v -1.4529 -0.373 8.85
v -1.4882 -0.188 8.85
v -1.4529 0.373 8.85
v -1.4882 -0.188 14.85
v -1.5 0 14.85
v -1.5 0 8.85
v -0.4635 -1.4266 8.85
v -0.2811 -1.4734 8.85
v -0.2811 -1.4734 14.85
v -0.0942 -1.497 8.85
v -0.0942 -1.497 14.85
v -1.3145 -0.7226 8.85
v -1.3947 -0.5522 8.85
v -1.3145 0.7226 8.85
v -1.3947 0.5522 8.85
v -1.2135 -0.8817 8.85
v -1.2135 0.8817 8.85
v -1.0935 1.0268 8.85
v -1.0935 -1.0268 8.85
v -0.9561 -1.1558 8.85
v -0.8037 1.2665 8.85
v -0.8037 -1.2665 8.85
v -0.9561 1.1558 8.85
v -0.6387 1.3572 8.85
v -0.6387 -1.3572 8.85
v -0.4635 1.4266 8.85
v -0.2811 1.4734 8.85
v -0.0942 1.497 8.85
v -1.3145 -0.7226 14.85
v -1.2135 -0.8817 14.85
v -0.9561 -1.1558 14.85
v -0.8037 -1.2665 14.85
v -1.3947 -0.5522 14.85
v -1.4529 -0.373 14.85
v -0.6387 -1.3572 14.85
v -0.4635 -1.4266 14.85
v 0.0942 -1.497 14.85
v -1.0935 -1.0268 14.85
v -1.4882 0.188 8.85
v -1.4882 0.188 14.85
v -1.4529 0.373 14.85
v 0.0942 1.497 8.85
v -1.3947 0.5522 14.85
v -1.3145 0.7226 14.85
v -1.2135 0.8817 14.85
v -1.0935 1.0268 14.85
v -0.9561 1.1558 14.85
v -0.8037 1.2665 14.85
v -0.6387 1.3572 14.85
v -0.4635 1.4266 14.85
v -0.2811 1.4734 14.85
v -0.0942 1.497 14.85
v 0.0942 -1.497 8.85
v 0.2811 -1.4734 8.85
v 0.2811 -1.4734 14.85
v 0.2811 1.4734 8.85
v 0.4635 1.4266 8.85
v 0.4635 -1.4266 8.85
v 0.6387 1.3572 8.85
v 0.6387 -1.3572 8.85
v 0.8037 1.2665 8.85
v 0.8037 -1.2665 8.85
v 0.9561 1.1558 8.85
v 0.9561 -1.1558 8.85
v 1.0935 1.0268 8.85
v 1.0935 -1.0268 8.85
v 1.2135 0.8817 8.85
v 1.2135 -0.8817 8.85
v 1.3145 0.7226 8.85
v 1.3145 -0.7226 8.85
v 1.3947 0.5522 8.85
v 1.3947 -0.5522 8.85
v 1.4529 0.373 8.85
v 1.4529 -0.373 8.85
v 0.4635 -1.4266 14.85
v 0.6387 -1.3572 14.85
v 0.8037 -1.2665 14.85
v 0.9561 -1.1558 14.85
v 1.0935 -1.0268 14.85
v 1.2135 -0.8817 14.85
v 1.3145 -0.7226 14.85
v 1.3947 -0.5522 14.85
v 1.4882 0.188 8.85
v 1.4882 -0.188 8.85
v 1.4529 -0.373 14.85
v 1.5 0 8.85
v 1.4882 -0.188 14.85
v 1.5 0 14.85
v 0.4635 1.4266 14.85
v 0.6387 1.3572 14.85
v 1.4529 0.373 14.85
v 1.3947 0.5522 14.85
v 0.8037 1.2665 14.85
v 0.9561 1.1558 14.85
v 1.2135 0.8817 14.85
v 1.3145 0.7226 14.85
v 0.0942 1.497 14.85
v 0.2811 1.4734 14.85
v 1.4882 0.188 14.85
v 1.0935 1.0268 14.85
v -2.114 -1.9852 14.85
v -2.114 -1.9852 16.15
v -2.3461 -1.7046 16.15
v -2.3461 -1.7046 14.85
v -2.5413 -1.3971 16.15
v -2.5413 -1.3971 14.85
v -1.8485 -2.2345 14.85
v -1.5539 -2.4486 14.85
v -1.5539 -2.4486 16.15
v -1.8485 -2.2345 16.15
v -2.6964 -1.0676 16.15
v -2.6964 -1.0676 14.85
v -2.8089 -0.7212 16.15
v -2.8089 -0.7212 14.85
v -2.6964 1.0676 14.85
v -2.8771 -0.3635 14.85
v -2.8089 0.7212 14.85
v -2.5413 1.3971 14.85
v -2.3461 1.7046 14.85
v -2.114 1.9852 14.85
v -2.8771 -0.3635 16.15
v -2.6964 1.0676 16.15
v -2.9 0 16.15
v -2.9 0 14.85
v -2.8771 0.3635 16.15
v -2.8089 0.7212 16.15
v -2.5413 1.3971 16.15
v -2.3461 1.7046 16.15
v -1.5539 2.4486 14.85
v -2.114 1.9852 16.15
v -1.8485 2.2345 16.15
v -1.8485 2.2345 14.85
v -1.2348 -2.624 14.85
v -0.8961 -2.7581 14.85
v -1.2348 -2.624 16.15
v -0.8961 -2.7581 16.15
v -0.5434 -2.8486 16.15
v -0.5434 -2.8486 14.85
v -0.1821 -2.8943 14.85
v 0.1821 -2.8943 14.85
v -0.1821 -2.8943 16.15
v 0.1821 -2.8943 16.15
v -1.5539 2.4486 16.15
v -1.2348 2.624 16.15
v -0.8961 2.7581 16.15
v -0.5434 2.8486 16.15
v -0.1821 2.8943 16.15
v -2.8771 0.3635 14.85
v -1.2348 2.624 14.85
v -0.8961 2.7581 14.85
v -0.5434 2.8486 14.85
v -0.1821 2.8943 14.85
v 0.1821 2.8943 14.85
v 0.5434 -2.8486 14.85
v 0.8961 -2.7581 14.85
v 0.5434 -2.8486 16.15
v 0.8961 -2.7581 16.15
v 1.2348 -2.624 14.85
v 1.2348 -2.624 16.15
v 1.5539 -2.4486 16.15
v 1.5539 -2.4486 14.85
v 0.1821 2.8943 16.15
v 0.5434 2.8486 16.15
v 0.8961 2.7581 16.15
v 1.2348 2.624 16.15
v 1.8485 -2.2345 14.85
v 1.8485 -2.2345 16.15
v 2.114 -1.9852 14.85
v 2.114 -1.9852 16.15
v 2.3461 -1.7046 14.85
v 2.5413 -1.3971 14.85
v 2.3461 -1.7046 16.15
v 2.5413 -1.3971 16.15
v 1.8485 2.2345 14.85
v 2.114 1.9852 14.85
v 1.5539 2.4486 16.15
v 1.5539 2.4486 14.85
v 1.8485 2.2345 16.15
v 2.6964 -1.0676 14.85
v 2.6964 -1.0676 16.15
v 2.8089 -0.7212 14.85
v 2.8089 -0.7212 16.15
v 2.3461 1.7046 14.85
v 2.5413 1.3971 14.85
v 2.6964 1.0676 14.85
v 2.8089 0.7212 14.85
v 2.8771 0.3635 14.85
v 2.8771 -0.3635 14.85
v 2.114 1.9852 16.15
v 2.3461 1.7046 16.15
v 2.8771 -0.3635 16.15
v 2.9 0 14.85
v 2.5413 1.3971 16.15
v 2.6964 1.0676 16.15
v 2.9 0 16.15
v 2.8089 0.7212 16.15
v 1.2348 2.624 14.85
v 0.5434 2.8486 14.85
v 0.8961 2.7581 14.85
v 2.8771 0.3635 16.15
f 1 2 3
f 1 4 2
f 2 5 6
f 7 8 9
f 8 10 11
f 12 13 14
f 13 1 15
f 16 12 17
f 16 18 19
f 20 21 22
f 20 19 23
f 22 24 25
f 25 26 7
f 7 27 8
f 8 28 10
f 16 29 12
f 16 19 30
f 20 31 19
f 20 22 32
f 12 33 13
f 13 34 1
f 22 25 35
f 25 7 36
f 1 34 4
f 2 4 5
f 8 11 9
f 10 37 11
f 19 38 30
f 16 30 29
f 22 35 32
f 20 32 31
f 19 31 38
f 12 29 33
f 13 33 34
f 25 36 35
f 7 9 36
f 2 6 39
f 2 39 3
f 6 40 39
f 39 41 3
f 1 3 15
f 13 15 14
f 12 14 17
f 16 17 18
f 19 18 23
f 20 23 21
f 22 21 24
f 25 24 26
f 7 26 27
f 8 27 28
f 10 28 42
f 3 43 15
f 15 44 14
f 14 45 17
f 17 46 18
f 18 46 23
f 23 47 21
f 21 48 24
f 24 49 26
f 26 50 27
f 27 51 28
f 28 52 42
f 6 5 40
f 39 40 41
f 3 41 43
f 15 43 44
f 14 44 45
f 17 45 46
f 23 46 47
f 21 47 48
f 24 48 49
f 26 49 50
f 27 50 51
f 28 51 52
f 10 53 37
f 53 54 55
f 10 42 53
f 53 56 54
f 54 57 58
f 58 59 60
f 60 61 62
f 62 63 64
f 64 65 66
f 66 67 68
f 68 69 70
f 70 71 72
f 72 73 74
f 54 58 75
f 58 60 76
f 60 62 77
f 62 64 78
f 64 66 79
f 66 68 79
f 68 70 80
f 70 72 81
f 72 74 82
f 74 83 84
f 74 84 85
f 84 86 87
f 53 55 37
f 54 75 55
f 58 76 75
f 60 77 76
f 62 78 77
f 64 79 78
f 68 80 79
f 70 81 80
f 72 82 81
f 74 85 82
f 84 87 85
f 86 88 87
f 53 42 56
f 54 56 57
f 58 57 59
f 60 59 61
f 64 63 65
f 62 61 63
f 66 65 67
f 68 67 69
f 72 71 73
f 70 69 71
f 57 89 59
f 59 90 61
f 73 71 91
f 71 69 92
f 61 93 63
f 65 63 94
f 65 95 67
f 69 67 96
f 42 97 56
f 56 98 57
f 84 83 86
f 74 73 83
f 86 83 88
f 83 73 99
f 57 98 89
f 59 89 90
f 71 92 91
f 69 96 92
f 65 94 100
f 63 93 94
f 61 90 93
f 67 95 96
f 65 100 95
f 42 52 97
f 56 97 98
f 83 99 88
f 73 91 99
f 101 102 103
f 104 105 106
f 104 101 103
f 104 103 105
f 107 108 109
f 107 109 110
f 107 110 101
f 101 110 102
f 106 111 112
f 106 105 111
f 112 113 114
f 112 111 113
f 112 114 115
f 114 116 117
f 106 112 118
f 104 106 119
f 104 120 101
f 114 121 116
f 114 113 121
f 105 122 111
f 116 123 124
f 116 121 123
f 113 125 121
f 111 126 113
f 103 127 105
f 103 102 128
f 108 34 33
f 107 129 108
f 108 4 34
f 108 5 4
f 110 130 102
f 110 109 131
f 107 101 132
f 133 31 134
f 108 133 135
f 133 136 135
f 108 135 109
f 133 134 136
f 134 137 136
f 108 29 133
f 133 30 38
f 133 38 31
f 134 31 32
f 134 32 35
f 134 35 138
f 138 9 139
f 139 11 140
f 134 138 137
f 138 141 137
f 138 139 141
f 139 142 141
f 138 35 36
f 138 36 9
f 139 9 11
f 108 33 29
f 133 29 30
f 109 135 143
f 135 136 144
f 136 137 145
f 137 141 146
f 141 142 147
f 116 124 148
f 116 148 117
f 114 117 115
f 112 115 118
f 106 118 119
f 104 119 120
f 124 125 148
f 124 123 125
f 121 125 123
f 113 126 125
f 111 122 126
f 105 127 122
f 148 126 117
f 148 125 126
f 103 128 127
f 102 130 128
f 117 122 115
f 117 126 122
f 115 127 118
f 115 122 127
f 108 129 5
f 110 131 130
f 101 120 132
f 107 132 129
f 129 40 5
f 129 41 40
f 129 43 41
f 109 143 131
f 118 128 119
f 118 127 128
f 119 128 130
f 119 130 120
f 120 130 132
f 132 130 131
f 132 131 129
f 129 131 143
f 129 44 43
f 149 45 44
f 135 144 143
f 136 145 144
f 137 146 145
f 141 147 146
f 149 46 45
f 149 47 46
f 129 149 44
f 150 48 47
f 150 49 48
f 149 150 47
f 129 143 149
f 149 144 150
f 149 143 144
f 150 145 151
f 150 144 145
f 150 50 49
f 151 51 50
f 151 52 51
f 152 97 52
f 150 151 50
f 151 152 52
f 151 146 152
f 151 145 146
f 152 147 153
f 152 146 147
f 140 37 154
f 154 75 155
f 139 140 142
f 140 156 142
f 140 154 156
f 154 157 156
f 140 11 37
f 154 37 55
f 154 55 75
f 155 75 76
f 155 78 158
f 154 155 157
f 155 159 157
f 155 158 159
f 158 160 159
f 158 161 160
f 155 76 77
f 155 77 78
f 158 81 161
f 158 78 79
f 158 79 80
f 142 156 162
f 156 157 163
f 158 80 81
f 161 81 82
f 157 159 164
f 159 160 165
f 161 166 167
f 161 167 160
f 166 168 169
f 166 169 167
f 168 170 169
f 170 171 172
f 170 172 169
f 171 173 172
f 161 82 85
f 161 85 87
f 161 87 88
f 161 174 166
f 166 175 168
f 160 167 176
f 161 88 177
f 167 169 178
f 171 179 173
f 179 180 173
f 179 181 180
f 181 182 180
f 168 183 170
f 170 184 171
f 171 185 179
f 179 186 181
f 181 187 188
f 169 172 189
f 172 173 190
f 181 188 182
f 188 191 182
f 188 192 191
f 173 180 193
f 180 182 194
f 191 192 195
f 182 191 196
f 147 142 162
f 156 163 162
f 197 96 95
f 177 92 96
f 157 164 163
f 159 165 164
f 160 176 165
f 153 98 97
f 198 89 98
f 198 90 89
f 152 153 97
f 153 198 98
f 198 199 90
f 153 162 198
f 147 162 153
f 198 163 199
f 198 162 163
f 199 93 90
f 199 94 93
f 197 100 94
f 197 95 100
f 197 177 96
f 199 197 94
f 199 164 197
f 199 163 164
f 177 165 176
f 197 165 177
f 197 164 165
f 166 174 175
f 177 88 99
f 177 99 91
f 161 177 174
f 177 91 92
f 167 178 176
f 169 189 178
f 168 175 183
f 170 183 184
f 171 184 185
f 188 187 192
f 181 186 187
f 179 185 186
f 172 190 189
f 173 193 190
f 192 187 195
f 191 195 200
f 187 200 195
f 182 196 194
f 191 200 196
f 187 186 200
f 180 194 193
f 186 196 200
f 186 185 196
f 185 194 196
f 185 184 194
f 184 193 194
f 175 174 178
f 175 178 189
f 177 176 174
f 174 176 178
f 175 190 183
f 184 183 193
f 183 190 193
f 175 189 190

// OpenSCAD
$fn = 50;

difference() {
	union() {
		translate(v = [0, 0, 8.850000000000001]) {
			cylinder(h = 6, r = 1.5);
		}
		translate(v = [0, 0, 14.850000000000001]) {
			cylinder(h = 1.3, r = 2.9);
		}
	}
	union();
}
